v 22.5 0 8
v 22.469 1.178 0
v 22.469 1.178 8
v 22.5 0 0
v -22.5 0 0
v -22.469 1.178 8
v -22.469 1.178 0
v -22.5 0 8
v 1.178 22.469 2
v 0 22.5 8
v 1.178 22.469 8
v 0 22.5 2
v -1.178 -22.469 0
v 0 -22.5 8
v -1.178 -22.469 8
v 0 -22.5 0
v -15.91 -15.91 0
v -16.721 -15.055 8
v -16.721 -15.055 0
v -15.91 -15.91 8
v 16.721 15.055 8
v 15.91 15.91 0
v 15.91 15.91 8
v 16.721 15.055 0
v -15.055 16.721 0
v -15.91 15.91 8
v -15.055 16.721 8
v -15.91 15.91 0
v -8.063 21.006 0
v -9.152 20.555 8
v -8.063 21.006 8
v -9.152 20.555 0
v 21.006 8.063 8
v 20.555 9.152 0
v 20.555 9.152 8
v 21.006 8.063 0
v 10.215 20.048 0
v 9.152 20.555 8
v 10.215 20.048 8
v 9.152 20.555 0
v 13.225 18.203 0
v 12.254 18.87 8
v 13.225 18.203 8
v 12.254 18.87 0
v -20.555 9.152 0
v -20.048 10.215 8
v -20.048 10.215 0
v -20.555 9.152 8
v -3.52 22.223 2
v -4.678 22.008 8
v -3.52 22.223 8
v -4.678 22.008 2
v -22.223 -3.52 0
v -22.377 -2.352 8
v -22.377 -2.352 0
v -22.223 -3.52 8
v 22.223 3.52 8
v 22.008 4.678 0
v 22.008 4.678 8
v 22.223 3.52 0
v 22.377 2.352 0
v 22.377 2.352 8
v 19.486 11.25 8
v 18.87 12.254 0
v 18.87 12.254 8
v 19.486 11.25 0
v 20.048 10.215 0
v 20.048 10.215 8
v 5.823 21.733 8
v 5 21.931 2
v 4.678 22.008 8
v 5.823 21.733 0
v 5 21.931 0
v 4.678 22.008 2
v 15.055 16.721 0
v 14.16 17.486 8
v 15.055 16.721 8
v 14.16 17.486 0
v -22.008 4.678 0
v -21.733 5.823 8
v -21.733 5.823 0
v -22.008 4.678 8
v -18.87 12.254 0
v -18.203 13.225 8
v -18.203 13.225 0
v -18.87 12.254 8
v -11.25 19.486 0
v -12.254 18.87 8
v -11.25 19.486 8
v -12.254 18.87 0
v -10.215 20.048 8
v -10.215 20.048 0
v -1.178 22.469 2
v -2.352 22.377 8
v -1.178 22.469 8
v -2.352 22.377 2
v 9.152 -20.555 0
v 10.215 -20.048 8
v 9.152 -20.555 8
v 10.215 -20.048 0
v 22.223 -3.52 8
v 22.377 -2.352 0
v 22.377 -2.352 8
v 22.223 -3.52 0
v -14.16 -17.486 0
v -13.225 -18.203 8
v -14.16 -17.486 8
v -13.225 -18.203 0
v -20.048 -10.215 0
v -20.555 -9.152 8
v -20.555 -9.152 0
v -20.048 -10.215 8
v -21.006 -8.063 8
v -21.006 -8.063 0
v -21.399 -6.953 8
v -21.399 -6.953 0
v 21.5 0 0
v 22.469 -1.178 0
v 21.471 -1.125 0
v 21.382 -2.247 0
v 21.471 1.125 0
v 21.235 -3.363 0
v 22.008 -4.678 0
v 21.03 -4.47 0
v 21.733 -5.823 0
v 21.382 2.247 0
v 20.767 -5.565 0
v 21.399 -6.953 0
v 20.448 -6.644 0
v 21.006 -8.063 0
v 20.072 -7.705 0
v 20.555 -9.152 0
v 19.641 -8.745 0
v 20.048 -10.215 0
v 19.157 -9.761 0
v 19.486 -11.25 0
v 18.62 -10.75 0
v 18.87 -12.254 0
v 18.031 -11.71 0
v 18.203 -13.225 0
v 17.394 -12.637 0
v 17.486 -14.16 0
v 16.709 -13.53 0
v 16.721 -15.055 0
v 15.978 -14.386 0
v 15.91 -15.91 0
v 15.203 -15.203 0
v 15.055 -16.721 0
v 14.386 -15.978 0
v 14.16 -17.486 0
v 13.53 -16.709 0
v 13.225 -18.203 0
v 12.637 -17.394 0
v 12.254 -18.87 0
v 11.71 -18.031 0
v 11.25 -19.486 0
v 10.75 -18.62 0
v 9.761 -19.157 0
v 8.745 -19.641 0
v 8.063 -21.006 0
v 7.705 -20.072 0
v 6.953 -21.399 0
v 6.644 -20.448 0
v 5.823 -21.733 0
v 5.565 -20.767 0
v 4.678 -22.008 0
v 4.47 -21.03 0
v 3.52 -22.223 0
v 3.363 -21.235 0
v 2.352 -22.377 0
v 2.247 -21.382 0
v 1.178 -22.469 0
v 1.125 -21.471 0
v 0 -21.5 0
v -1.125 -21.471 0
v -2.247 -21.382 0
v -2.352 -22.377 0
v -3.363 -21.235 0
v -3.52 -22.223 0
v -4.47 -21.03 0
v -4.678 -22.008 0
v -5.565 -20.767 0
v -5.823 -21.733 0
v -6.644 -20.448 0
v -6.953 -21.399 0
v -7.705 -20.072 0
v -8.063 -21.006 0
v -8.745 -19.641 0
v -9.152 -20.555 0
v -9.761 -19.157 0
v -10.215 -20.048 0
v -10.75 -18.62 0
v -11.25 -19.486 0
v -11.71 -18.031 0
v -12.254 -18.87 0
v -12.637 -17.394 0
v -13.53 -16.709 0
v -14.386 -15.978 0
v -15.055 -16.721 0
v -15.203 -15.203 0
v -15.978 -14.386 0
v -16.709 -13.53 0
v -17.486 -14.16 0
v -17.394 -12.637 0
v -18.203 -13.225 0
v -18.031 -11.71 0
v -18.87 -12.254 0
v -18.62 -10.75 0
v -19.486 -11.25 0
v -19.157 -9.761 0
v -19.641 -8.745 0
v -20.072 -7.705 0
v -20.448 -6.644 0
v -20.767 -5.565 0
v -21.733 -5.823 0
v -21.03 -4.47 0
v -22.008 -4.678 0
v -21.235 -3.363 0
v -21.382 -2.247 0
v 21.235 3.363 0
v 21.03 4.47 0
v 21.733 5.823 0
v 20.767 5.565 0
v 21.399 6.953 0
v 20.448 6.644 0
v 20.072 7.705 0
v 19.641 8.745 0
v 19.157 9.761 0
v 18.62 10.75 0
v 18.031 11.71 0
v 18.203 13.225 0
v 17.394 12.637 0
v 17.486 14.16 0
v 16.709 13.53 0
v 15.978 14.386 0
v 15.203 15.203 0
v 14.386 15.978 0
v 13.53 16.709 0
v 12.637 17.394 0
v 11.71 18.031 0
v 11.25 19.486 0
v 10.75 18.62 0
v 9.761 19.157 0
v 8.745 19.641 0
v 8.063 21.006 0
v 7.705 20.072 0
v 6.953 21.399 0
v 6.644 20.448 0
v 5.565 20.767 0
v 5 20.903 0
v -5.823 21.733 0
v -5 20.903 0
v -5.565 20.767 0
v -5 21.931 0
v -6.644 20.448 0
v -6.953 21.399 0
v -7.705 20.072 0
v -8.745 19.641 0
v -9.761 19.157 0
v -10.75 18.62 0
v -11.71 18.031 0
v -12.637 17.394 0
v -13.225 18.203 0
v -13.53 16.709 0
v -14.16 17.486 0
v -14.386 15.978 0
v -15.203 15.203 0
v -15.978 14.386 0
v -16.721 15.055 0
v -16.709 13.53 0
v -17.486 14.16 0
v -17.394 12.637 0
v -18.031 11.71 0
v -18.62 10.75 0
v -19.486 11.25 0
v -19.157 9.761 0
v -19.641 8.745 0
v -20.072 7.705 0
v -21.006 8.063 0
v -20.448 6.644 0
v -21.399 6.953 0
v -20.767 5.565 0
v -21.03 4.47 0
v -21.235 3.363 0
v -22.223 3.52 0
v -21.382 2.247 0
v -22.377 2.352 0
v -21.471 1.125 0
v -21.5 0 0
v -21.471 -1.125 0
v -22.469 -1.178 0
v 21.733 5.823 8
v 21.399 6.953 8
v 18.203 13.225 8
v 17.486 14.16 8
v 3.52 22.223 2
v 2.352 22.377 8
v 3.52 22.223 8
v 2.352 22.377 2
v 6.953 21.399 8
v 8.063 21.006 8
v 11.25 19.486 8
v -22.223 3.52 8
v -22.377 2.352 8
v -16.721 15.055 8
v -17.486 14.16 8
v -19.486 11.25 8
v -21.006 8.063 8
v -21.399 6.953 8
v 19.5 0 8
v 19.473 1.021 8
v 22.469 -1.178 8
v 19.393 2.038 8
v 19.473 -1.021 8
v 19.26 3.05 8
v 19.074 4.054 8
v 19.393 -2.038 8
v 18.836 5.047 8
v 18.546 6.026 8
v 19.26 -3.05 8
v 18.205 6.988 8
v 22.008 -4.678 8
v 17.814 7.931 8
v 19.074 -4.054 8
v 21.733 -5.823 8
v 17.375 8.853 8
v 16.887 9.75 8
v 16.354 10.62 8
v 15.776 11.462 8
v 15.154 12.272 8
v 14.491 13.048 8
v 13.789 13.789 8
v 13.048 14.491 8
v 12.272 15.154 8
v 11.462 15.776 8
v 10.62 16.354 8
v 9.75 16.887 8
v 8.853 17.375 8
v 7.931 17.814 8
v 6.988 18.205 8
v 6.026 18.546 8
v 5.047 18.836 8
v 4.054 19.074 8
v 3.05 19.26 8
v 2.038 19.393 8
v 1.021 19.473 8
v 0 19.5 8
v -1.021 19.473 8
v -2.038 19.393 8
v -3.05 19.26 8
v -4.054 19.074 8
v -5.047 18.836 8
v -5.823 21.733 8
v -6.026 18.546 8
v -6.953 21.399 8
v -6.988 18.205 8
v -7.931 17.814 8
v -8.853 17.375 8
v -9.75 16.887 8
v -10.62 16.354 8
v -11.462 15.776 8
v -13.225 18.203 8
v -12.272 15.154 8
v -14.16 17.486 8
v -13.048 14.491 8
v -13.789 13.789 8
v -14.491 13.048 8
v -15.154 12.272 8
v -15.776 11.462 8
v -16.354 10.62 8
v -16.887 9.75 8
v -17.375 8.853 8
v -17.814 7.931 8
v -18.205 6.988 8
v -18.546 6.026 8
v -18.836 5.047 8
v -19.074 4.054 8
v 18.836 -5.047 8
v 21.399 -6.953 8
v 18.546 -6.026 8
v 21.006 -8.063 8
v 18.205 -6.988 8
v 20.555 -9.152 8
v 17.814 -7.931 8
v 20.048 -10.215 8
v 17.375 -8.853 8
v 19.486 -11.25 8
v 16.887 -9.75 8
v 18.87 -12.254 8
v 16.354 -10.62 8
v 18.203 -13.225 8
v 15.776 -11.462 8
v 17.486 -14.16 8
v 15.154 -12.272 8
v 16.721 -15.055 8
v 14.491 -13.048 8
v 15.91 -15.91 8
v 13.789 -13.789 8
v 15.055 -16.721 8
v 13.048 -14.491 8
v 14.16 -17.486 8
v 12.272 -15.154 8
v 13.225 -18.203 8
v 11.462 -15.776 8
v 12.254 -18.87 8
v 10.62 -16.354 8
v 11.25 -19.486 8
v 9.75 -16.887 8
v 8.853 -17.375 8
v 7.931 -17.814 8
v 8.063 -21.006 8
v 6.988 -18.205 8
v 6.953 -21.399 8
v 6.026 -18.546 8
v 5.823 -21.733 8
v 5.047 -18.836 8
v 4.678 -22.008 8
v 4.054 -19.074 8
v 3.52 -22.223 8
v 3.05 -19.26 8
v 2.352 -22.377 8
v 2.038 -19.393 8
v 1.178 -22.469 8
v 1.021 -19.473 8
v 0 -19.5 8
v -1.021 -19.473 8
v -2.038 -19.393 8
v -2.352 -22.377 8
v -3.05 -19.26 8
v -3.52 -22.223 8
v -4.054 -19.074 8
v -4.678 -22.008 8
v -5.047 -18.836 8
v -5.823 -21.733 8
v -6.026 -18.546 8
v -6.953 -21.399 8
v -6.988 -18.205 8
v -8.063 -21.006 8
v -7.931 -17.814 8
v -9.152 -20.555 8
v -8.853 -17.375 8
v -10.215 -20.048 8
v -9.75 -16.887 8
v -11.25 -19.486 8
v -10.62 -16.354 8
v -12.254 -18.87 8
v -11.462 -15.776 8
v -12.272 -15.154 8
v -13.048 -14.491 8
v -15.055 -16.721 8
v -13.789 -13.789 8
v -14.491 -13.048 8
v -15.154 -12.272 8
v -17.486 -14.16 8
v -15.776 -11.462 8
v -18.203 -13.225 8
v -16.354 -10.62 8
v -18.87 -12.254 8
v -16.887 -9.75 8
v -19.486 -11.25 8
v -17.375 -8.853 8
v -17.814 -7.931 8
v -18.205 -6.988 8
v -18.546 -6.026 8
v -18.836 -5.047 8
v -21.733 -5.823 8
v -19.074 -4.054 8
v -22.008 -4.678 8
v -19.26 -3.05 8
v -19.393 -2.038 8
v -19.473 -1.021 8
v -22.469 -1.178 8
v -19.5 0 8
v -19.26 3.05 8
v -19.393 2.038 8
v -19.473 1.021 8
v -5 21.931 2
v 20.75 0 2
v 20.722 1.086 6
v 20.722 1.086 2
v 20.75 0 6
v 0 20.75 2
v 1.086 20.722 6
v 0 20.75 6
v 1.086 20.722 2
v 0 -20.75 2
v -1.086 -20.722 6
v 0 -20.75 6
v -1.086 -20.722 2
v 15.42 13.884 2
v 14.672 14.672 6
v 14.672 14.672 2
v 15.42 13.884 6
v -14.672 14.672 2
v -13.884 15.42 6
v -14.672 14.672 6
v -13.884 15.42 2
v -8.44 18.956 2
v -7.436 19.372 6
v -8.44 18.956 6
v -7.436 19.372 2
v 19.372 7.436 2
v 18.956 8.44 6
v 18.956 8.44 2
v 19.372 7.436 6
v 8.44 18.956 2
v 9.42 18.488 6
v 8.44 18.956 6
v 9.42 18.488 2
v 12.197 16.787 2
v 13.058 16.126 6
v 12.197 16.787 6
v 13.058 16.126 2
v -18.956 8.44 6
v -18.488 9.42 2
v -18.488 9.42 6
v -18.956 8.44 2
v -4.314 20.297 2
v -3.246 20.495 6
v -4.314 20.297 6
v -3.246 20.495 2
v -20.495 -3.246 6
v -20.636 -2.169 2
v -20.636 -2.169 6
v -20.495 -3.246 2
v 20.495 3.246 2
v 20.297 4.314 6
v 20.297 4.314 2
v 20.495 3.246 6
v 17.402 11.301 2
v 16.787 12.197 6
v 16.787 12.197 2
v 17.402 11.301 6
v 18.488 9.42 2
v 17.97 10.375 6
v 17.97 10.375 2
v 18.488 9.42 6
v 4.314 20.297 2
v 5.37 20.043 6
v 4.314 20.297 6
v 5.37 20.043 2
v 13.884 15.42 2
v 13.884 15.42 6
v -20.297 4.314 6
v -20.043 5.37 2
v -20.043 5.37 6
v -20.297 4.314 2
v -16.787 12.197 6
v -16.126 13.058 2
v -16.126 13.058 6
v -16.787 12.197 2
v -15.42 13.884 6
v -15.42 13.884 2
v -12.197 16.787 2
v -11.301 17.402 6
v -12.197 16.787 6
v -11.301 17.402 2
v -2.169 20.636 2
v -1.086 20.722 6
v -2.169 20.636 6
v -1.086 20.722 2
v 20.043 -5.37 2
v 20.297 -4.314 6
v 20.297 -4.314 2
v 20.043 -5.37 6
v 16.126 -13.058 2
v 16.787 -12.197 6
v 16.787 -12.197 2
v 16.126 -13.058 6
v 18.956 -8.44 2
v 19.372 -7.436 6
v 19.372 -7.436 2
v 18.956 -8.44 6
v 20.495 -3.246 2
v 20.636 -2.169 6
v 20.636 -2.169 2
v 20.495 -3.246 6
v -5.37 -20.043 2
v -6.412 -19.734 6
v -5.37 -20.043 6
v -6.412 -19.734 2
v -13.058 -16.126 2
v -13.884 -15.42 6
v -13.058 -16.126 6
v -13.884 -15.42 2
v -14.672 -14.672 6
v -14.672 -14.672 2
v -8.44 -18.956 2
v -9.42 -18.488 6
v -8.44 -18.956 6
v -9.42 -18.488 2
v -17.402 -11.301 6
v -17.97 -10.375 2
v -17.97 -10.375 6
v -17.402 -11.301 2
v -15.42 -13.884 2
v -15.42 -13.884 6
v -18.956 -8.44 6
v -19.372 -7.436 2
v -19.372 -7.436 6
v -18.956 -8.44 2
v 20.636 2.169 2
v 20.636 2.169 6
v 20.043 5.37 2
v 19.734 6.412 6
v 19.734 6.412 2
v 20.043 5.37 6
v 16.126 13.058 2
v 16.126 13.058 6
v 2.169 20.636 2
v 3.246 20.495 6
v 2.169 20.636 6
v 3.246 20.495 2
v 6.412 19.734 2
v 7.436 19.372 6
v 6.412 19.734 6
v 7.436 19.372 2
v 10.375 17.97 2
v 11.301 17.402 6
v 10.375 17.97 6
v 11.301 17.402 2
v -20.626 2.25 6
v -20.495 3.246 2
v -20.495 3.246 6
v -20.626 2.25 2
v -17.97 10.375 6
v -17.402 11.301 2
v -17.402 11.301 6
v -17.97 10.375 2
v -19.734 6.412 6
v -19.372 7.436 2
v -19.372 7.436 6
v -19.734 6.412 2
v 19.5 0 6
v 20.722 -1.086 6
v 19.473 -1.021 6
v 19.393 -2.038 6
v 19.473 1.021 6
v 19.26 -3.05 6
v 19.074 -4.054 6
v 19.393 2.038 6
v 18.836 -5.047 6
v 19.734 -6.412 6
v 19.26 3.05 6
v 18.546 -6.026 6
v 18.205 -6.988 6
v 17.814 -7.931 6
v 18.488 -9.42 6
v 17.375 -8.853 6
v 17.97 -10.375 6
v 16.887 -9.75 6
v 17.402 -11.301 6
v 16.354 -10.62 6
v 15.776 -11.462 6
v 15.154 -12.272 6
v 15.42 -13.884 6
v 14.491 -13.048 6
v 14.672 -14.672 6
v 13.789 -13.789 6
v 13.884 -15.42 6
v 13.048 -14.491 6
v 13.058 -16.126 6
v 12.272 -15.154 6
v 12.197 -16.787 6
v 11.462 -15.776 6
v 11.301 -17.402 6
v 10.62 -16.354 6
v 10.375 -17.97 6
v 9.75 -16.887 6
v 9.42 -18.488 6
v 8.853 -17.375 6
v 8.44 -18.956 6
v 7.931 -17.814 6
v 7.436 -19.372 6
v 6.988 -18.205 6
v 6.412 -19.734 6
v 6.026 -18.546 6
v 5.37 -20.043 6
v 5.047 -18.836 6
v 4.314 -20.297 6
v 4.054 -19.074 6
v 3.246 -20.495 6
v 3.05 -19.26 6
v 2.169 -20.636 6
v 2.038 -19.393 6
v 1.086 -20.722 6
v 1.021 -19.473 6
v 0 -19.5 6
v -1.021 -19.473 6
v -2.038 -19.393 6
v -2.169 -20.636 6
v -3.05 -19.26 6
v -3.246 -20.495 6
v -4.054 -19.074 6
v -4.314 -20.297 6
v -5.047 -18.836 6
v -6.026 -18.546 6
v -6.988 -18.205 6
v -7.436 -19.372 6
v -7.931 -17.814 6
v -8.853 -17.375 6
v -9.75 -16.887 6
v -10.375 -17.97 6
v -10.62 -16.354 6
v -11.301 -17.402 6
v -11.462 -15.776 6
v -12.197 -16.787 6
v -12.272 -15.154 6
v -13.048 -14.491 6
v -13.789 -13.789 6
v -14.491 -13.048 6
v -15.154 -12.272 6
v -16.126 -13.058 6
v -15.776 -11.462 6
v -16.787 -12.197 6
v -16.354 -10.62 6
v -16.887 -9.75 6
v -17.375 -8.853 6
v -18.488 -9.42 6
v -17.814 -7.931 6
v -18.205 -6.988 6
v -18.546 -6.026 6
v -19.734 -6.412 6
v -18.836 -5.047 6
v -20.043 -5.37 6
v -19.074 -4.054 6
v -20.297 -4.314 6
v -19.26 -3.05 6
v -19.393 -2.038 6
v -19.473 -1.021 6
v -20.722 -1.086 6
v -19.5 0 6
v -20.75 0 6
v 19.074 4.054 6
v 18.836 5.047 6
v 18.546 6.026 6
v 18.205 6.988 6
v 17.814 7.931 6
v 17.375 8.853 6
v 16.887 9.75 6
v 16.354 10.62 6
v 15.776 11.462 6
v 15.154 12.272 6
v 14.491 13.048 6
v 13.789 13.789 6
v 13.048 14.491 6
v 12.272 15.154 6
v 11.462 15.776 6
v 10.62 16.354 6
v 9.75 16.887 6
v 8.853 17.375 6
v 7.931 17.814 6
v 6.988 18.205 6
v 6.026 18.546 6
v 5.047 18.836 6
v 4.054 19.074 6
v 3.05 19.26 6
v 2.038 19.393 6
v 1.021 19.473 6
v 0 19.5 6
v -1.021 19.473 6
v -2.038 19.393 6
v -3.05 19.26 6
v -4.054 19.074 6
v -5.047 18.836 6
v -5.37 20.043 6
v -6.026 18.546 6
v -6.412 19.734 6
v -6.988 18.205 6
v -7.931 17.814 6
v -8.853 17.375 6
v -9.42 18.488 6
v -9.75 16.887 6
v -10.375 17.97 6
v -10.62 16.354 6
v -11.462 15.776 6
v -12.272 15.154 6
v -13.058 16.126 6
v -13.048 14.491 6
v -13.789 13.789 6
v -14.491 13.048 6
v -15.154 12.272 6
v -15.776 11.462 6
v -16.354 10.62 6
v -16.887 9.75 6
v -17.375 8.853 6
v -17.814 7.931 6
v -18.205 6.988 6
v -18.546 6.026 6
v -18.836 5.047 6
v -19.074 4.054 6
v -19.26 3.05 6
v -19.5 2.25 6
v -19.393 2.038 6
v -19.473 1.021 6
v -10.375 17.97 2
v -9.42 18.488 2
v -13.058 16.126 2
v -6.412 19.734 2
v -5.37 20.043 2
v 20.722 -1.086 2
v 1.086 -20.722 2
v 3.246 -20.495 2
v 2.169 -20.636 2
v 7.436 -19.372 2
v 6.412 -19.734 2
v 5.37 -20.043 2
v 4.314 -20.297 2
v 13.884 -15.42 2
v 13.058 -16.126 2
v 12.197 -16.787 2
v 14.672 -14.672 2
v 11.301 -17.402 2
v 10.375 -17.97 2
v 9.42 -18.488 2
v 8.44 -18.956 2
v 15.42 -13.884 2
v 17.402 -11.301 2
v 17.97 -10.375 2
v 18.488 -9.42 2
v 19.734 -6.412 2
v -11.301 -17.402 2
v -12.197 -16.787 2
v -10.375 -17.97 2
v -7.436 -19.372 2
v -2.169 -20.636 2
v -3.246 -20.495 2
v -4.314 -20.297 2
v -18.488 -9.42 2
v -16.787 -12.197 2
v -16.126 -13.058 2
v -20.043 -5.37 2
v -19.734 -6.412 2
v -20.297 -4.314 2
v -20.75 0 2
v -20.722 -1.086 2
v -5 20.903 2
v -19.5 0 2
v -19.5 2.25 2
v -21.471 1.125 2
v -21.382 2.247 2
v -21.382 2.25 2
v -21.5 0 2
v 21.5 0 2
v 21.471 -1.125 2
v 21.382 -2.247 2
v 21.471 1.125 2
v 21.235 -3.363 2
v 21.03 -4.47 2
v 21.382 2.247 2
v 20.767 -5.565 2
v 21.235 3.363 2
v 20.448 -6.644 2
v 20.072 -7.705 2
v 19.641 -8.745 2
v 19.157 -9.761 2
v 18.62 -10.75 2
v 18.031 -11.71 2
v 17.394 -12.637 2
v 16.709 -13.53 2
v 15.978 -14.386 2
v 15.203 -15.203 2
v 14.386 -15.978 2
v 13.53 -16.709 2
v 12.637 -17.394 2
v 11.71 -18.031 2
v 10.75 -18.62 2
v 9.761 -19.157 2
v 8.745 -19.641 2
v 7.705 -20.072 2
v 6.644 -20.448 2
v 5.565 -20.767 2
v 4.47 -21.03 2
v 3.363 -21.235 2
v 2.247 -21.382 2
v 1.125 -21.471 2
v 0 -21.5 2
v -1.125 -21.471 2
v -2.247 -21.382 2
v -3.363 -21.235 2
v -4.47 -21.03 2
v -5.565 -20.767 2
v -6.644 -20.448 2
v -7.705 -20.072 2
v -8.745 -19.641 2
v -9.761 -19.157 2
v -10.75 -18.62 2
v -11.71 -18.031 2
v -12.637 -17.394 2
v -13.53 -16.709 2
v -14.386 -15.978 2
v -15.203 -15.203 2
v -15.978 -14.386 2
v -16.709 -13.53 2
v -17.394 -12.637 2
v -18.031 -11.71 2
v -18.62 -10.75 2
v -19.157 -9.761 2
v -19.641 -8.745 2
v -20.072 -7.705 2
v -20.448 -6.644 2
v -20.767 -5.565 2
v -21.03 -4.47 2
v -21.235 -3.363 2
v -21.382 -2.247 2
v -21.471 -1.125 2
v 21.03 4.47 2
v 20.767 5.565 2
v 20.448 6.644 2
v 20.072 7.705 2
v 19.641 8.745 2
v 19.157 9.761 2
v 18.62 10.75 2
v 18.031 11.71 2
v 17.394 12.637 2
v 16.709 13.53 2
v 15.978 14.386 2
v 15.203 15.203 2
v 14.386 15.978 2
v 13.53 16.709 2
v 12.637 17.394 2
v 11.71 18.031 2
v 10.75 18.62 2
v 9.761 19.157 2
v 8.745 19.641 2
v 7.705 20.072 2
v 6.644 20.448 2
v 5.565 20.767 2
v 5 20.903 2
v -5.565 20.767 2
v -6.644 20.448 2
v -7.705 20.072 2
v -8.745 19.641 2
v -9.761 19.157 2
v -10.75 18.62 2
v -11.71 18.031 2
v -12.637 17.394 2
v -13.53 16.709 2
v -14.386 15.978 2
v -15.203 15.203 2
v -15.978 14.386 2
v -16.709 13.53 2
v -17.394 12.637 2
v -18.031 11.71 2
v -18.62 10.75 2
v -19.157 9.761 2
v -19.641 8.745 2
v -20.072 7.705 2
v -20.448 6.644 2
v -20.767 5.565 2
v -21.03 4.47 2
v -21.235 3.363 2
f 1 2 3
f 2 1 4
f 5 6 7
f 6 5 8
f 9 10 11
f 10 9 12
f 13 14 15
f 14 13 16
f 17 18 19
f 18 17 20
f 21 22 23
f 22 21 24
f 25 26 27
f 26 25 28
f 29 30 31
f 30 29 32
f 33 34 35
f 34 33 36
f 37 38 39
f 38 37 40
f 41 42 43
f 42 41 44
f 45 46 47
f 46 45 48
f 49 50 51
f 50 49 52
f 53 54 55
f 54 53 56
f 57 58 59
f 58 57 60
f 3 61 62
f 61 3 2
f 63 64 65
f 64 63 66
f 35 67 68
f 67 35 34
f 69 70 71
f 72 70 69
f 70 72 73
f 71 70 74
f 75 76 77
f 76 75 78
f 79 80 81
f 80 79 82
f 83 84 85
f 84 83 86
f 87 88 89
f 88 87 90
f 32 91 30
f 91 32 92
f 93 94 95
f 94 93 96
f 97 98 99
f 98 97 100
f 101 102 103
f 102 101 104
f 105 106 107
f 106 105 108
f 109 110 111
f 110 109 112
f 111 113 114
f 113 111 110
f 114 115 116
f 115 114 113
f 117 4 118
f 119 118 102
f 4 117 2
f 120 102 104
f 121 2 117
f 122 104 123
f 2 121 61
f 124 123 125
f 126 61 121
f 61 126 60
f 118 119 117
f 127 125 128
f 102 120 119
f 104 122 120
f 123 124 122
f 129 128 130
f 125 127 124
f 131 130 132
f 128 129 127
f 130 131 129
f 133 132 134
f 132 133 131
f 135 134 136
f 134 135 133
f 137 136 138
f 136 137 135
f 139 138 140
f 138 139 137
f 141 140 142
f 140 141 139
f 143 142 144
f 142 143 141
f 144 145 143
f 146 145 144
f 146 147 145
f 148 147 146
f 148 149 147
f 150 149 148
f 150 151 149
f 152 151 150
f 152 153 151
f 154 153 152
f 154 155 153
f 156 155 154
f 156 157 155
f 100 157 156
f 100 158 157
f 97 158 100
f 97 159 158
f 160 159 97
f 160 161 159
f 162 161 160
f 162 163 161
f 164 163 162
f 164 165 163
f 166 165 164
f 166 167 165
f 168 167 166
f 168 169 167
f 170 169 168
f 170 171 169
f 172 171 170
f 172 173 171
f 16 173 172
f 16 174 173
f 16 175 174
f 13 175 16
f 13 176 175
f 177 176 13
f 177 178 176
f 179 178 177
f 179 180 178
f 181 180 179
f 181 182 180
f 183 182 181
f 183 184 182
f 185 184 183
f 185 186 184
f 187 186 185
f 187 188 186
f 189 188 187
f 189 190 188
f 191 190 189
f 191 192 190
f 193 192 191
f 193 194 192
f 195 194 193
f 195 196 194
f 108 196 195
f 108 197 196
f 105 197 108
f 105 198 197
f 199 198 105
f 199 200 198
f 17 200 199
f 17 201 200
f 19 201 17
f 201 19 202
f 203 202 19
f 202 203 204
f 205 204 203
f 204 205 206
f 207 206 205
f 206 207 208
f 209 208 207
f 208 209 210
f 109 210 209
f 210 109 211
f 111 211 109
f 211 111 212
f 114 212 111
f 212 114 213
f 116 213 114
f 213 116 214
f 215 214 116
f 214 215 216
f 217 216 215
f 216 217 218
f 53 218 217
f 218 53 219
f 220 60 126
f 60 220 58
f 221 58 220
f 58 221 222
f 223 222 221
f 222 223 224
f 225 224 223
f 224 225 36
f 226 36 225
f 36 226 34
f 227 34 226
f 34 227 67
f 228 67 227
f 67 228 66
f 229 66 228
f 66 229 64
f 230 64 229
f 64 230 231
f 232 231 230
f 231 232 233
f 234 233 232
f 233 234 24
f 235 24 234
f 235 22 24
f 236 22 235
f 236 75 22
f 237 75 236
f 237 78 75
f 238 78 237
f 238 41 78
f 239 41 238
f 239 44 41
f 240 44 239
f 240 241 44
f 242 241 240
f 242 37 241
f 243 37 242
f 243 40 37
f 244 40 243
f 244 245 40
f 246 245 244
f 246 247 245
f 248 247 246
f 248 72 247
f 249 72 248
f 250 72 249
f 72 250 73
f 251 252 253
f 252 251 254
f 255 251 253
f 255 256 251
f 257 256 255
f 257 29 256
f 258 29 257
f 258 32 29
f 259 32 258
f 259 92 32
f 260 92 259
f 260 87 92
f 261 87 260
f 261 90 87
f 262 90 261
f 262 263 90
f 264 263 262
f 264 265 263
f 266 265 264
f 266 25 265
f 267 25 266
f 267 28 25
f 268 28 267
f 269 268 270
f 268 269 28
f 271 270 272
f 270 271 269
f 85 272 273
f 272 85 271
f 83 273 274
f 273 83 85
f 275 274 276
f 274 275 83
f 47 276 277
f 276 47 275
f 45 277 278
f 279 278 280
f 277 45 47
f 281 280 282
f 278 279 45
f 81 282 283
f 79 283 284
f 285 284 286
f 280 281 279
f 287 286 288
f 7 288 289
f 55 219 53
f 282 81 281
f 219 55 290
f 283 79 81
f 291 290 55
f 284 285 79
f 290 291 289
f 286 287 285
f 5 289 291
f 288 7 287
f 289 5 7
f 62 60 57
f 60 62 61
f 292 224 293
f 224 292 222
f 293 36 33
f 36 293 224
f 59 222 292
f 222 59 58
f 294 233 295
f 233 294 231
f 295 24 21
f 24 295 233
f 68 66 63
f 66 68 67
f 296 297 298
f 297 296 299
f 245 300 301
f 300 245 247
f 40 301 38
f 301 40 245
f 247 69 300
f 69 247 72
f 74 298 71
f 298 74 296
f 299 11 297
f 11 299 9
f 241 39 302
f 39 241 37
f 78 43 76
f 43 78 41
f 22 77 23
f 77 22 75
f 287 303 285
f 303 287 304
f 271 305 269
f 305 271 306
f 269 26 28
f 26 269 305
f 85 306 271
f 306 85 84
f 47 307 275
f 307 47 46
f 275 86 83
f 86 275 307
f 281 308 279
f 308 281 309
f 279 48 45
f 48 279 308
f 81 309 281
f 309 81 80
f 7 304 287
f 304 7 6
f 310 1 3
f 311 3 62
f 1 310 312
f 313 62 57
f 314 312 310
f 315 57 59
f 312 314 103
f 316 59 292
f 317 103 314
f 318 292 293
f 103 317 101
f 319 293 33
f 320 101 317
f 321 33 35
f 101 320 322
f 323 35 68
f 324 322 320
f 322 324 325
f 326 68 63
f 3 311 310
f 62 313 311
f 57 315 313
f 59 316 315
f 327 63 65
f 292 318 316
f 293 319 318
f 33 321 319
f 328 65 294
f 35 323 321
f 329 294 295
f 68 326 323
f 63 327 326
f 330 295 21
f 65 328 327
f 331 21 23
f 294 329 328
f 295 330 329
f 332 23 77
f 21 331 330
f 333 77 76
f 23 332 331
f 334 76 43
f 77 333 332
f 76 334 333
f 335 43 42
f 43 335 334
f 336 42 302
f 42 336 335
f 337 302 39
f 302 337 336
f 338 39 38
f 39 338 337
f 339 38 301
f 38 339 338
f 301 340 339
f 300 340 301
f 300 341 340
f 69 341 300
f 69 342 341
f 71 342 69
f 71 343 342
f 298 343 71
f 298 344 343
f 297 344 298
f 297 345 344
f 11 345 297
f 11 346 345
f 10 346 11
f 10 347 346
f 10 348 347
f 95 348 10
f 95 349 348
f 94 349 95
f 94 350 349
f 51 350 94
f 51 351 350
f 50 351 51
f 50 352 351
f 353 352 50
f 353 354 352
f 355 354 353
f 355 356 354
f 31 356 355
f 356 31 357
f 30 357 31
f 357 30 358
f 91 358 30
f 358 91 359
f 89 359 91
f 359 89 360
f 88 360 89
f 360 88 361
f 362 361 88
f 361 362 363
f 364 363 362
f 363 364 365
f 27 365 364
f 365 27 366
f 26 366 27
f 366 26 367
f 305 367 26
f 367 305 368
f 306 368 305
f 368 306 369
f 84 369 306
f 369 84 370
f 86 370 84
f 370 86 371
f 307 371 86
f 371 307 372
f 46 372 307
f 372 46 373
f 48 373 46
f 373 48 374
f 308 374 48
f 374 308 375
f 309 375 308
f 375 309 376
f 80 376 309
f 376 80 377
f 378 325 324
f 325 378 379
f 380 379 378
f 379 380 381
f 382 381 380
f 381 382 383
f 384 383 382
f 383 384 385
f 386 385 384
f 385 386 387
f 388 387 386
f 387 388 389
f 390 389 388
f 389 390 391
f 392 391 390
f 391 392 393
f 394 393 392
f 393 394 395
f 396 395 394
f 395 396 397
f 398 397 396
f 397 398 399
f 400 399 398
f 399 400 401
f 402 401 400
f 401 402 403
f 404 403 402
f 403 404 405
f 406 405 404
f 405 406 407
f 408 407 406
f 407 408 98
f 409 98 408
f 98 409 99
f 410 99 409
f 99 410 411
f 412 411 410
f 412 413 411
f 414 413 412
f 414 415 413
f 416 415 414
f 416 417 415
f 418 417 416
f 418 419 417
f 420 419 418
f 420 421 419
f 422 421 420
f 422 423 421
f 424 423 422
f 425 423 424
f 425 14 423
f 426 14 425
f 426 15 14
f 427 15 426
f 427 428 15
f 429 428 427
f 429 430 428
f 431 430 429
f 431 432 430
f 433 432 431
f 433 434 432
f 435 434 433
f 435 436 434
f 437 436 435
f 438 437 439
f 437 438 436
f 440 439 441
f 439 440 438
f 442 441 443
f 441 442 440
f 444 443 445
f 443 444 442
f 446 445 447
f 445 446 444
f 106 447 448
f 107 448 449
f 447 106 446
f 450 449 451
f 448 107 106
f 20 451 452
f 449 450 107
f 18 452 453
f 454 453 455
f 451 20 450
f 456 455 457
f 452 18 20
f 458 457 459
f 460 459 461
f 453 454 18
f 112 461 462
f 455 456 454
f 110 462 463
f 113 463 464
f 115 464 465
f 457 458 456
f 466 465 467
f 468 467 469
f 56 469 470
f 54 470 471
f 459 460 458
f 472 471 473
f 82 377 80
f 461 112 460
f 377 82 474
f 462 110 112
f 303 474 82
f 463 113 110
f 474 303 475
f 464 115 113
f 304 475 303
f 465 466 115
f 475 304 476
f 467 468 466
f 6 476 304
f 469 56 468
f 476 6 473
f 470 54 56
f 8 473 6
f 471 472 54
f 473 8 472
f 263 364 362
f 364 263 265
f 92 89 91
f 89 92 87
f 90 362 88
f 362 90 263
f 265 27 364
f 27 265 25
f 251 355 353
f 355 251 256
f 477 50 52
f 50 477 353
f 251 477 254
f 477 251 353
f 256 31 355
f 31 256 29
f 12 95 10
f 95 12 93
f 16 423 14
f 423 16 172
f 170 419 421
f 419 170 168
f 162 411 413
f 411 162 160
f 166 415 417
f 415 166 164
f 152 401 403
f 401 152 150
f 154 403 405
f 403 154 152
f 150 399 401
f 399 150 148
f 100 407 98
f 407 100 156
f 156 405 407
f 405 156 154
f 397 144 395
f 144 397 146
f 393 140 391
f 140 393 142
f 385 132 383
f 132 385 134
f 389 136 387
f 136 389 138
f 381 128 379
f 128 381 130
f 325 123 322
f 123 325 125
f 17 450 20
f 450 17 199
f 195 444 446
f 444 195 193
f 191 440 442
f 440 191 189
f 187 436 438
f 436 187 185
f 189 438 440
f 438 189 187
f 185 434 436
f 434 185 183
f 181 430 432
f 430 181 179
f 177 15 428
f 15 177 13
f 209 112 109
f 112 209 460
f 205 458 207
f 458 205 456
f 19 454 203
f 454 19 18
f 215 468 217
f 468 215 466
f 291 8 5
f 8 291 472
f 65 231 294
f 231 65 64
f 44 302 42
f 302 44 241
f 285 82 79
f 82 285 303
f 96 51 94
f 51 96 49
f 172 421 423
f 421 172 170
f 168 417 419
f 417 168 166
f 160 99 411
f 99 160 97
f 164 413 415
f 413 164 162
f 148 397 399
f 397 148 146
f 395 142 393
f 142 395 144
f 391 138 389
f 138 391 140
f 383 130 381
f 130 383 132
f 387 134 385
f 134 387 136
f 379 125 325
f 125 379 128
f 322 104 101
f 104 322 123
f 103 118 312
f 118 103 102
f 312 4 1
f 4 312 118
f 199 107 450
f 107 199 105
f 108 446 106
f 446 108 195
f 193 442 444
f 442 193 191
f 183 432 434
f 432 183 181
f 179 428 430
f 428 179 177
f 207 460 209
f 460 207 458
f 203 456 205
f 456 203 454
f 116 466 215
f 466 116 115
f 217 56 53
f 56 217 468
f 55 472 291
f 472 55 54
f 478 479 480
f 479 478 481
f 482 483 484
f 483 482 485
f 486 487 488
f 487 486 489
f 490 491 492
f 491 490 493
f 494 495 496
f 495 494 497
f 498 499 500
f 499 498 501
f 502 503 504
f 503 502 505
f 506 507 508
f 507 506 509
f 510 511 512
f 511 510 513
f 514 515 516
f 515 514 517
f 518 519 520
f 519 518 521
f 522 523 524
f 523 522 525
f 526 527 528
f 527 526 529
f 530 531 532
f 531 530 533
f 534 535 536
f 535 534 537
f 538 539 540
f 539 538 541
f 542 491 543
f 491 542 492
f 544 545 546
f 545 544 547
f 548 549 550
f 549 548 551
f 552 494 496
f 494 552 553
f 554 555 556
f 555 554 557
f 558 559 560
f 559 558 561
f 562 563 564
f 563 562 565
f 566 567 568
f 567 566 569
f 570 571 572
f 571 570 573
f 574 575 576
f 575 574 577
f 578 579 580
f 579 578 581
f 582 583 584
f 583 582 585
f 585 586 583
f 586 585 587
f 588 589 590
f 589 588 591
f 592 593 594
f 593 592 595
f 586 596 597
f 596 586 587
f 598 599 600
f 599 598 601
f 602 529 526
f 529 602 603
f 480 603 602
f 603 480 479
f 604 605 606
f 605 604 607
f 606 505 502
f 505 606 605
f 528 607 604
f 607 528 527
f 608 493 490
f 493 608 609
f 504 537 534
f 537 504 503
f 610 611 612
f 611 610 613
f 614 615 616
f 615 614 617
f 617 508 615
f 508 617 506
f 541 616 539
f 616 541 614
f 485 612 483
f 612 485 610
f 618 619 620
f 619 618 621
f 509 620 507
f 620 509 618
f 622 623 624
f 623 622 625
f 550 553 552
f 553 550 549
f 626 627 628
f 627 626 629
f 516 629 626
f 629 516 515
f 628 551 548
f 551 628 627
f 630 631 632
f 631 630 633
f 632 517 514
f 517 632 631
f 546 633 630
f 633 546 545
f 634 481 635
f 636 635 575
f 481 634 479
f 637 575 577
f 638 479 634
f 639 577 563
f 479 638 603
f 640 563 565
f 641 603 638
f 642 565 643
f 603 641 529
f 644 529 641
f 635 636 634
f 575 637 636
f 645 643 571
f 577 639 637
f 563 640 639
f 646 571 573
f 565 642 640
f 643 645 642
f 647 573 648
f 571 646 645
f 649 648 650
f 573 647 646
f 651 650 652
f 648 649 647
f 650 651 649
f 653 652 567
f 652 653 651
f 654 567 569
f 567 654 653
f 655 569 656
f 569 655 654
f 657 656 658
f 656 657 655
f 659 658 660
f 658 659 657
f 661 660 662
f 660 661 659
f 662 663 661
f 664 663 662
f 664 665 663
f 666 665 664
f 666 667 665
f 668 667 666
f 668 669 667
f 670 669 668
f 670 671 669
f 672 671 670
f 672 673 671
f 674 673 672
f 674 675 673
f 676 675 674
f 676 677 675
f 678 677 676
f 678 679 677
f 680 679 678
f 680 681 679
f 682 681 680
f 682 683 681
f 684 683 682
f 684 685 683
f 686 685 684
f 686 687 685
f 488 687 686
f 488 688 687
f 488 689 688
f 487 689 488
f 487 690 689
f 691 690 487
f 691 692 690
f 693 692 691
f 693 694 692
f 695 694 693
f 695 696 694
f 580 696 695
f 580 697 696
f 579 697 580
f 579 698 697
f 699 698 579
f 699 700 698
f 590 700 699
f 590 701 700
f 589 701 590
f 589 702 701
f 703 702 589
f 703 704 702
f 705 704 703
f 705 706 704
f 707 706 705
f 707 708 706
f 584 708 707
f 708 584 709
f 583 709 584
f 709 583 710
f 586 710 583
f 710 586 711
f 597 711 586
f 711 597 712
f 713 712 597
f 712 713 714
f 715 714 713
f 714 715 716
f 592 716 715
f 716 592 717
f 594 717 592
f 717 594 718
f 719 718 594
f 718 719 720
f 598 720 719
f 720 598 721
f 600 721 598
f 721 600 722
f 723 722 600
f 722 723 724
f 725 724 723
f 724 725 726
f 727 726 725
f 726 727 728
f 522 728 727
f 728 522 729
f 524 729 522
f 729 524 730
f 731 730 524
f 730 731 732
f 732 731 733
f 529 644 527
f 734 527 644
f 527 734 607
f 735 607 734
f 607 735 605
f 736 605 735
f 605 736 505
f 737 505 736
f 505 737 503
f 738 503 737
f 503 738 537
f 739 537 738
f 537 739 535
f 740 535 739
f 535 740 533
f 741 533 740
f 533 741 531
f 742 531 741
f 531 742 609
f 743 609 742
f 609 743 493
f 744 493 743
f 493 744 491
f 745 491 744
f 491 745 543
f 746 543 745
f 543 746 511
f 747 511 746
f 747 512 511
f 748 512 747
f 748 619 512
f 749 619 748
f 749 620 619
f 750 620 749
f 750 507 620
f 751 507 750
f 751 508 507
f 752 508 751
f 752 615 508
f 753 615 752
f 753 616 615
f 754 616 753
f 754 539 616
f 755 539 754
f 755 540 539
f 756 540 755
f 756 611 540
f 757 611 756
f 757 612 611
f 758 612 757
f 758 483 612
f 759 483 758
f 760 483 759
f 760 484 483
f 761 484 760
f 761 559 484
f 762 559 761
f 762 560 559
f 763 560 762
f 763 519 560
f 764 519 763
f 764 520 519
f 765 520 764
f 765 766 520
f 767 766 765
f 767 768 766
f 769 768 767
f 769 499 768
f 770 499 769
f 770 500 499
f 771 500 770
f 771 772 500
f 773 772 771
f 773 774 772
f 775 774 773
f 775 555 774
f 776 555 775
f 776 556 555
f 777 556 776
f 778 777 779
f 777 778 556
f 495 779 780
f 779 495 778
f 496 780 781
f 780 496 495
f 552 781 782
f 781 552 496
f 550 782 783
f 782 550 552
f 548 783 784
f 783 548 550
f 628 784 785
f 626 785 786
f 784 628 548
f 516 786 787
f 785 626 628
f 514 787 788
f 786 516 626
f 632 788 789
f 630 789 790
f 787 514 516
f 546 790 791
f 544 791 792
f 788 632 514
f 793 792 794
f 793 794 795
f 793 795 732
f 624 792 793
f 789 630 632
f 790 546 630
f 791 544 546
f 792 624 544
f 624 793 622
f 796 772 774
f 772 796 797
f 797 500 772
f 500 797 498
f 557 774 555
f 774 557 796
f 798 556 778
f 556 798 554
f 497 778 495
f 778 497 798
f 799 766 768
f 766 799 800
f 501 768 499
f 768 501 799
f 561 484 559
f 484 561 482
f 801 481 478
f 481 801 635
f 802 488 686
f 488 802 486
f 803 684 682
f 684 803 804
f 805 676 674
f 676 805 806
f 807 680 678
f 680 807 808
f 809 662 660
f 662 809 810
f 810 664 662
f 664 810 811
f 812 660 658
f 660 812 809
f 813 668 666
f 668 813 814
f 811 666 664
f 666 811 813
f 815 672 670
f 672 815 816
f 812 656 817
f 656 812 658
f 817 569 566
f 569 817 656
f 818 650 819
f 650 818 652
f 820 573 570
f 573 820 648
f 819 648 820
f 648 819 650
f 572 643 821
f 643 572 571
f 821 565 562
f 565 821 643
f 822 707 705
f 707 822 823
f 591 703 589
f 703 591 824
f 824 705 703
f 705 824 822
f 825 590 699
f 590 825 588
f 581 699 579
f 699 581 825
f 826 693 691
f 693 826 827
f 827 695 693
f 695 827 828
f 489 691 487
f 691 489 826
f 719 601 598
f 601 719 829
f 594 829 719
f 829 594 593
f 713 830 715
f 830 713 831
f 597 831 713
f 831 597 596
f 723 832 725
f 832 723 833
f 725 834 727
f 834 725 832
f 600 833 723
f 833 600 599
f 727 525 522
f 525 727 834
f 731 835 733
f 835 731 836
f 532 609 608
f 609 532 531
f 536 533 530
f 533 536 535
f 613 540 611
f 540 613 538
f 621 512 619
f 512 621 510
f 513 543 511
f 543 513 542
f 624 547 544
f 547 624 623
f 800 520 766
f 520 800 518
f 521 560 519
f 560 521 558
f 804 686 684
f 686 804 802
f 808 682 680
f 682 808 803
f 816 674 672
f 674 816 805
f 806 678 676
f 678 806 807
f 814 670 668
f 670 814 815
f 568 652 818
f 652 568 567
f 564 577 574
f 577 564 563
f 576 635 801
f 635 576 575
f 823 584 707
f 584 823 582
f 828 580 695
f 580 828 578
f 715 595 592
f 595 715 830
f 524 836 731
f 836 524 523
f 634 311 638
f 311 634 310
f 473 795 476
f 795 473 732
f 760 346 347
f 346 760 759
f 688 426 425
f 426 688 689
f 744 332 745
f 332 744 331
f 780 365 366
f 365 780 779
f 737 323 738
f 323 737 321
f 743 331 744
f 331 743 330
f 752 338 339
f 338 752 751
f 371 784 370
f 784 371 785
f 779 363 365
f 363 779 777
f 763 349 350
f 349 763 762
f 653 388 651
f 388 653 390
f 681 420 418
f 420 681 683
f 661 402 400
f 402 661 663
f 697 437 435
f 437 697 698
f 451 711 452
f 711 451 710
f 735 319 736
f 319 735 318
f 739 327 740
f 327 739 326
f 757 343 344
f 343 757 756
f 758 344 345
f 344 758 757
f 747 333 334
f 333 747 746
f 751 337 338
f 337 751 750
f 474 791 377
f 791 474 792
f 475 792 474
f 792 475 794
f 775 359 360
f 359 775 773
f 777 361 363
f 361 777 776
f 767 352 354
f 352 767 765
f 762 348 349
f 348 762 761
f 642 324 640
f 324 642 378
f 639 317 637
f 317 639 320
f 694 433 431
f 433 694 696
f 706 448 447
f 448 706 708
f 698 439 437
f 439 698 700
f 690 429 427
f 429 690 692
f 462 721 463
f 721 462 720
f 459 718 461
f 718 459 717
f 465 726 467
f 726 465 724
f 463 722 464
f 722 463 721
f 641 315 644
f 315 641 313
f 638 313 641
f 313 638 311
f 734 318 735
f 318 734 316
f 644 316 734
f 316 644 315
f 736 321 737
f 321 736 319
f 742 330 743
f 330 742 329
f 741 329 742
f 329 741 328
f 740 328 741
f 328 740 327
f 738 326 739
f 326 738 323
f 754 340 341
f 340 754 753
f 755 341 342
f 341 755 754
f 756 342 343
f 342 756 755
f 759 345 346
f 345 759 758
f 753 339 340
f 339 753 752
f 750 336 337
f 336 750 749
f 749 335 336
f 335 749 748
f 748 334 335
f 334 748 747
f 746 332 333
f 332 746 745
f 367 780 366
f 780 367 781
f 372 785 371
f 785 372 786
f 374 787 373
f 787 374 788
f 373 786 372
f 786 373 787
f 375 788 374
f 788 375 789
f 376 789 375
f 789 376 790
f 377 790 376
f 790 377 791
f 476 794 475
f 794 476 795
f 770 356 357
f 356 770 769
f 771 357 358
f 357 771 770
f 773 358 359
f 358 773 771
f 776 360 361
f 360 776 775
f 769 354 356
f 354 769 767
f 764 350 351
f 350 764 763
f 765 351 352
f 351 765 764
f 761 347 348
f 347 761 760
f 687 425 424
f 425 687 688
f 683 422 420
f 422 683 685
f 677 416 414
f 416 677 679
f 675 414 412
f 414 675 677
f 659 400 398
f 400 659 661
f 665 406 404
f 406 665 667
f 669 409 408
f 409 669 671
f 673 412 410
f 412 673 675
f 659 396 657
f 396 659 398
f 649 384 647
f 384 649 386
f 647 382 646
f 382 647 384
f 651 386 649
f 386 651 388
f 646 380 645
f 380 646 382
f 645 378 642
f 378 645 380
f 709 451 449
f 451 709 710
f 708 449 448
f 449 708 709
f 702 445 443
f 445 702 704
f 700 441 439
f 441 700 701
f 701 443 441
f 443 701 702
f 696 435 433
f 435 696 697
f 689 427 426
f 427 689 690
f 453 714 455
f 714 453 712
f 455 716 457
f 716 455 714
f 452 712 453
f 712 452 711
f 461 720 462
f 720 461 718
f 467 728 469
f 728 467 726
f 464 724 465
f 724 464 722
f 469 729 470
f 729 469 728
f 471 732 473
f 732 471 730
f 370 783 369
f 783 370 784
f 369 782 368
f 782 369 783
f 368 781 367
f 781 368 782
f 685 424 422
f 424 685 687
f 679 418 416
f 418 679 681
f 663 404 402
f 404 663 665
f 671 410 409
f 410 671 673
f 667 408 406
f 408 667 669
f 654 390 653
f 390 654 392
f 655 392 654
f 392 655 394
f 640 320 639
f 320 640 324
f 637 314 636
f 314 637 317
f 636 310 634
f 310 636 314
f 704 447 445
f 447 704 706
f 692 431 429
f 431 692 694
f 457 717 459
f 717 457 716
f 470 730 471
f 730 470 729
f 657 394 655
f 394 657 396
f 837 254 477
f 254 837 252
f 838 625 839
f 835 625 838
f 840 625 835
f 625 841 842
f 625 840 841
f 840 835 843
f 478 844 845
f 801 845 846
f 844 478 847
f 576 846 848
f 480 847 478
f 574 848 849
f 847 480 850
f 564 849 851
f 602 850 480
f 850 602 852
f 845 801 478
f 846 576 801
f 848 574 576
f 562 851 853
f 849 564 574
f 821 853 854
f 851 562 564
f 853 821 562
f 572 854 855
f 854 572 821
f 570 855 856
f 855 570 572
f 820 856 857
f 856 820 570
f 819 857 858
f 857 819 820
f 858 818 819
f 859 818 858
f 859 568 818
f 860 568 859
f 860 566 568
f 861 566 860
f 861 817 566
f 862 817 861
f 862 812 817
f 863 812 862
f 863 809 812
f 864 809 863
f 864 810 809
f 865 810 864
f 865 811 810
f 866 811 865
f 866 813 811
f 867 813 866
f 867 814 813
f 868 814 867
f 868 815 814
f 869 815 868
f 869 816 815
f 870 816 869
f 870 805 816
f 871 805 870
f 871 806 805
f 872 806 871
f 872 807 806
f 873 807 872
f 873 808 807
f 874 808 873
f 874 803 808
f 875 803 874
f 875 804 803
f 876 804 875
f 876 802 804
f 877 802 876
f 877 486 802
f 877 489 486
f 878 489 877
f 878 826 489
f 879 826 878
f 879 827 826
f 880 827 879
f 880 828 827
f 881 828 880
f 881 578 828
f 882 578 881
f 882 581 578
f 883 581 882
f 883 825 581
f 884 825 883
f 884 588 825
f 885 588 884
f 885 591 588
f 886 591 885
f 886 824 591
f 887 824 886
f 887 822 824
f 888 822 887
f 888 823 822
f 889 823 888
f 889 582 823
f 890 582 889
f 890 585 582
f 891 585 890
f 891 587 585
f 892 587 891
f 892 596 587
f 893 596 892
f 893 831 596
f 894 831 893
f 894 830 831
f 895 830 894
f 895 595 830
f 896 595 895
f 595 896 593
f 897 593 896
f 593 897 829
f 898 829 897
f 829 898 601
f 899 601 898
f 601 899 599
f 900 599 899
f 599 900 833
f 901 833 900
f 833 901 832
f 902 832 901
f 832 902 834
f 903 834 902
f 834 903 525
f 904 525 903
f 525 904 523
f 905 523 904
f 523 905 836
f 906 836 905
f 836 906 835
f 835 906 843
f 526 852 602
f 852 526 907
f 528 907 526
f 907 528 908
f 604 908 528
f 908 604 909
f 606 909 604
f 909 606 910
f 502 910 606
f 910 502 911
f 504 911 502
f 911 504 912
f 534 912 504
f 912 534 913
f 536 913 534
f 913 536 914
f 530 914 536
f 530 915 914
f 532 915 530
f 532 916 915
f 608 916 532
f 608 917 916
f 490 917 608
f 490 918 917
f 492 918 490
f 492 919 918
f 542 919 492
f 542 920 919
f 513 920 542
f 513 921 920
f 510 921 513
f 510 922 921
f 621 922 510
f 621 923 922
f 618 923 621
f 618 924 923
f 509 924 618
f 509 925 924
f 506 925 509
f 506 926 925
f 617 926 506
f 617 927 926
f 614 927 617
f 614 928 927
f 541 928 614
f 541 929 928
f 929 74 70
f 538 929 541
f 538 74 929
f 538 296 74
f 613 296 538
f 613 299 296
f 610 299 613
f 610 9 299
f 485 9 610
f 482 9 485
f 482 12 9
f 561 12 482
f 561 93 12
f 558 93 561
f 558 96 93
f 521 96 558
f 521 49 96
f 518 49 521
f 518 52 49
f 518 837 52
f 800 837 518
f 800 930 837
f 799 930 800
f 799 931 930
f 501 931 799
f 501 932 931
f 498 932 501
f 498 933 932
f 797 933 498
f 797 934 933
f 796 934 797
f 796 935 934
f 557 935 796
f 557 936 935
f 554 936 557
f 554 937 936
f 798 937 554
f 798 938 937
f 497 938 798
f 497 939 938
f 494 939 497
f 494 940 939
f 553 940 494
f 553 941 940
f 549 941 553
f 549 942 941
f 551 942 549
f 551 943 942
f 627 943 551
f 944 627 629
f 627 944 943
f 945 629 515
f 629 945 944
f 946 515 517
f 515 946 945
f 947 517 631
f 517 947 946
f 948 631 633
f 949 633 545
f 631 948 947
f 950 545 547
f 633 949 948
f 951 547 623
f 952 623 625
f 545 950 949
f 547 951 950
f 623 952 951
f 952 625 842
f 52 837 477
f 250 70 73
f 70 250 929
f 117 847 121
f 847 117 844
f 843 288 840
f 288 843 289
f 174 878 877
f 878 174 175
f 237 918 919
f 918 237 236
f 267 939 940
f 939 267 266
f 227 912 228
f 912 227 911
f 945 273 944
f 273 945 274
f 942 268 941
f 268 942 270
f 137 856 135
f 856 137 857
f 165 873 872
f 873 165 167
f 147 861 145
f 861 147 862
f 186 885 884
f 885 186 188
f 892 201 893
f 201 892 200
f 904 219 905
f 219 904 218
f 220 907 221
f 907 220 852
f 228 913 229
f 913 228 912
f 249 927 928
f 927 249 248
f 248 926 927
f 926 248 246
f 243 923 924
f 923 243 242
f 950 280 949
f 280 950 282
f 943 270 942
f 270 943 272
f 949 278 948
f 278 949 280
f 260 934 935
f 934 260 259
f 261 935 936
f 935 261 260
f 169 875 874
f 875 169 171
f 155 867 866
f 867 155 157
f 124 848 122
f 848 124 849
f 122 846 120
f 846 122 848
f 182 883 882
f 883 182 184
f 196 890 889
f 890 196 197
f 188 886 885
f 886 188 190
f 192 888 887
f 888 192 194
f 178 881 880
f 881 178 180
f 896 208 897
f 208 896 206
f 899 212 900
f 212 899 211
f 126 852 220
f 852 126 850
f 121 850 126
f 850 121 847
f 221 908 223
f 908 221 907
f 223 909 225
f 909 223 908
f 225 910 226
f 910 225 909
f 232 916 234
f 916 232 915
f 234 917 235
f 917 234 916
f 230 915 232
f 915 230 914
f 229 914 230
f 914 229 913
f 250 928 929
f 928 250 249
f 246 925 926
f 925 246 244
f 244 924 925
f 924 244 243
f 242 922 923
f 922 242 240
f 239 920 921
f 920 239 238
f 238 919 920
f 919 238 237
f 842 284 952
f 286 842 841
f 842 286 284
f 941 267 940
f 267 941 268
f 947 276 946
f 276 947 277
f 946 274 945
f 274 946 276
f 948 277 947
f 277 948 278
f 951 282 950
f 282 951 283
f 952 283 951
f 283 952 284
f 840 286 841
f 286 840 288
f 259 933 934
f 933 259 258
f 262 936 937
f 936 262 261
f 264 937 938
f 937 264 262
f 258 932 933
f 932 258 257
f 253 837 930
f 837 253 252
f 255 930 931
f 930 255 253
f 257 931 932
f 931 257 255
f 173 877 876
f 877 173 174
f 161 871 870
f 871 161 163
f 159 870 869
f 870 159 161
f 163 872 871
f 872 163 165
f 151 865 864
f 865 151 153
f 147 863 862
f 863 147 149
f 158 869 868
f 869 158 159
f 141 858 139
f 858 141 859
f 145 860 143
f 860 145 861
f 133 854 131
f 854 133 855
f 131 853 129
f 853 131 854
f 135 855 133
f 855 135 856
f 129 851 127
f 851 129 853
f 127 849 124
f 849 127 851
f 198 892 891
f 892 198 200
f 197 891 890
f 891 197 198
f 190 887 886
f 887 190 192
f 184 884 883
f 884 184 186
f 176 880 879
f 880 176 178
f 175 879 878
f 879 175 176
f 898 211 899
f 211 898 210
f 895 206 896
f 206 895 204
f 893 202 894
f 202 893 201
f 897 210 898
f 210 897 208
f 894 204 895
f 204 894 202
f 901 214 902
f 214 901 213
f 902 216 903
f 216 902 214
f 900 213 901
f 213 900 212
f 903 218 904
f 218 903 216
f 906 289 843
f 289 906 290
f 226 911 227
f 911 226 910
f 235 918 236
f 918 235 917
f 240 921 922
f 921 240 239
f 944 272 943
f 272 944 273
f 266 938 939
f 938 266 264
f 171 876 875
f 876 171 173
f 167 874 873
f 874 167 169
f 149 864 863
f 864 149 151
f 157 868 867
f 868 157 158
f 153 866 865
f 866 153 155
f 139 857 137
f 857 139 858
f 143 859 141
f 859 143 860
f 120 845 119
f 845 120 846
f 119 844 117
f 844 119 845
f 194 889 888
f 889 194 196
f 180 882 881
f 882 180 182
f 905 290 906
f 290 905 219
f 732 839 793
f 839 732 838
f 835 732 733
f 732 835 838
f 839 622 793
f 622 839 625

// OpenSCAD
include <BOSL/constants.scad>
use <BOSL/shapes.scad>
use <BOSL/transforms.scad>
use <BOSL/masks.scad>

//Slider_Disc
fileVersion = "1D";
  
$fn=120; //circle smoothness

union() {  
  difference(){
     color("lime") cylinder(h=8, d=45); //disc object
      color("aqua") down(2) cylinder(h=7+1, d=41.5); //sensor cutout (full width)
      color("peru") up(5) cylinder(h=4, d=39); // touchable sensor surface
      color("peru") down(1) translate([-(10/2), 17.5, 0]) #cube([10,8,2+1]); //usb cutout
      color("red") down(1) cylinder(h=2+1, d=43); // snap lip
  }//difference

  color("blue") left(21.75) up(2)  cube([2.25, 2.25, 4]); // trackpoint alignment 

}
